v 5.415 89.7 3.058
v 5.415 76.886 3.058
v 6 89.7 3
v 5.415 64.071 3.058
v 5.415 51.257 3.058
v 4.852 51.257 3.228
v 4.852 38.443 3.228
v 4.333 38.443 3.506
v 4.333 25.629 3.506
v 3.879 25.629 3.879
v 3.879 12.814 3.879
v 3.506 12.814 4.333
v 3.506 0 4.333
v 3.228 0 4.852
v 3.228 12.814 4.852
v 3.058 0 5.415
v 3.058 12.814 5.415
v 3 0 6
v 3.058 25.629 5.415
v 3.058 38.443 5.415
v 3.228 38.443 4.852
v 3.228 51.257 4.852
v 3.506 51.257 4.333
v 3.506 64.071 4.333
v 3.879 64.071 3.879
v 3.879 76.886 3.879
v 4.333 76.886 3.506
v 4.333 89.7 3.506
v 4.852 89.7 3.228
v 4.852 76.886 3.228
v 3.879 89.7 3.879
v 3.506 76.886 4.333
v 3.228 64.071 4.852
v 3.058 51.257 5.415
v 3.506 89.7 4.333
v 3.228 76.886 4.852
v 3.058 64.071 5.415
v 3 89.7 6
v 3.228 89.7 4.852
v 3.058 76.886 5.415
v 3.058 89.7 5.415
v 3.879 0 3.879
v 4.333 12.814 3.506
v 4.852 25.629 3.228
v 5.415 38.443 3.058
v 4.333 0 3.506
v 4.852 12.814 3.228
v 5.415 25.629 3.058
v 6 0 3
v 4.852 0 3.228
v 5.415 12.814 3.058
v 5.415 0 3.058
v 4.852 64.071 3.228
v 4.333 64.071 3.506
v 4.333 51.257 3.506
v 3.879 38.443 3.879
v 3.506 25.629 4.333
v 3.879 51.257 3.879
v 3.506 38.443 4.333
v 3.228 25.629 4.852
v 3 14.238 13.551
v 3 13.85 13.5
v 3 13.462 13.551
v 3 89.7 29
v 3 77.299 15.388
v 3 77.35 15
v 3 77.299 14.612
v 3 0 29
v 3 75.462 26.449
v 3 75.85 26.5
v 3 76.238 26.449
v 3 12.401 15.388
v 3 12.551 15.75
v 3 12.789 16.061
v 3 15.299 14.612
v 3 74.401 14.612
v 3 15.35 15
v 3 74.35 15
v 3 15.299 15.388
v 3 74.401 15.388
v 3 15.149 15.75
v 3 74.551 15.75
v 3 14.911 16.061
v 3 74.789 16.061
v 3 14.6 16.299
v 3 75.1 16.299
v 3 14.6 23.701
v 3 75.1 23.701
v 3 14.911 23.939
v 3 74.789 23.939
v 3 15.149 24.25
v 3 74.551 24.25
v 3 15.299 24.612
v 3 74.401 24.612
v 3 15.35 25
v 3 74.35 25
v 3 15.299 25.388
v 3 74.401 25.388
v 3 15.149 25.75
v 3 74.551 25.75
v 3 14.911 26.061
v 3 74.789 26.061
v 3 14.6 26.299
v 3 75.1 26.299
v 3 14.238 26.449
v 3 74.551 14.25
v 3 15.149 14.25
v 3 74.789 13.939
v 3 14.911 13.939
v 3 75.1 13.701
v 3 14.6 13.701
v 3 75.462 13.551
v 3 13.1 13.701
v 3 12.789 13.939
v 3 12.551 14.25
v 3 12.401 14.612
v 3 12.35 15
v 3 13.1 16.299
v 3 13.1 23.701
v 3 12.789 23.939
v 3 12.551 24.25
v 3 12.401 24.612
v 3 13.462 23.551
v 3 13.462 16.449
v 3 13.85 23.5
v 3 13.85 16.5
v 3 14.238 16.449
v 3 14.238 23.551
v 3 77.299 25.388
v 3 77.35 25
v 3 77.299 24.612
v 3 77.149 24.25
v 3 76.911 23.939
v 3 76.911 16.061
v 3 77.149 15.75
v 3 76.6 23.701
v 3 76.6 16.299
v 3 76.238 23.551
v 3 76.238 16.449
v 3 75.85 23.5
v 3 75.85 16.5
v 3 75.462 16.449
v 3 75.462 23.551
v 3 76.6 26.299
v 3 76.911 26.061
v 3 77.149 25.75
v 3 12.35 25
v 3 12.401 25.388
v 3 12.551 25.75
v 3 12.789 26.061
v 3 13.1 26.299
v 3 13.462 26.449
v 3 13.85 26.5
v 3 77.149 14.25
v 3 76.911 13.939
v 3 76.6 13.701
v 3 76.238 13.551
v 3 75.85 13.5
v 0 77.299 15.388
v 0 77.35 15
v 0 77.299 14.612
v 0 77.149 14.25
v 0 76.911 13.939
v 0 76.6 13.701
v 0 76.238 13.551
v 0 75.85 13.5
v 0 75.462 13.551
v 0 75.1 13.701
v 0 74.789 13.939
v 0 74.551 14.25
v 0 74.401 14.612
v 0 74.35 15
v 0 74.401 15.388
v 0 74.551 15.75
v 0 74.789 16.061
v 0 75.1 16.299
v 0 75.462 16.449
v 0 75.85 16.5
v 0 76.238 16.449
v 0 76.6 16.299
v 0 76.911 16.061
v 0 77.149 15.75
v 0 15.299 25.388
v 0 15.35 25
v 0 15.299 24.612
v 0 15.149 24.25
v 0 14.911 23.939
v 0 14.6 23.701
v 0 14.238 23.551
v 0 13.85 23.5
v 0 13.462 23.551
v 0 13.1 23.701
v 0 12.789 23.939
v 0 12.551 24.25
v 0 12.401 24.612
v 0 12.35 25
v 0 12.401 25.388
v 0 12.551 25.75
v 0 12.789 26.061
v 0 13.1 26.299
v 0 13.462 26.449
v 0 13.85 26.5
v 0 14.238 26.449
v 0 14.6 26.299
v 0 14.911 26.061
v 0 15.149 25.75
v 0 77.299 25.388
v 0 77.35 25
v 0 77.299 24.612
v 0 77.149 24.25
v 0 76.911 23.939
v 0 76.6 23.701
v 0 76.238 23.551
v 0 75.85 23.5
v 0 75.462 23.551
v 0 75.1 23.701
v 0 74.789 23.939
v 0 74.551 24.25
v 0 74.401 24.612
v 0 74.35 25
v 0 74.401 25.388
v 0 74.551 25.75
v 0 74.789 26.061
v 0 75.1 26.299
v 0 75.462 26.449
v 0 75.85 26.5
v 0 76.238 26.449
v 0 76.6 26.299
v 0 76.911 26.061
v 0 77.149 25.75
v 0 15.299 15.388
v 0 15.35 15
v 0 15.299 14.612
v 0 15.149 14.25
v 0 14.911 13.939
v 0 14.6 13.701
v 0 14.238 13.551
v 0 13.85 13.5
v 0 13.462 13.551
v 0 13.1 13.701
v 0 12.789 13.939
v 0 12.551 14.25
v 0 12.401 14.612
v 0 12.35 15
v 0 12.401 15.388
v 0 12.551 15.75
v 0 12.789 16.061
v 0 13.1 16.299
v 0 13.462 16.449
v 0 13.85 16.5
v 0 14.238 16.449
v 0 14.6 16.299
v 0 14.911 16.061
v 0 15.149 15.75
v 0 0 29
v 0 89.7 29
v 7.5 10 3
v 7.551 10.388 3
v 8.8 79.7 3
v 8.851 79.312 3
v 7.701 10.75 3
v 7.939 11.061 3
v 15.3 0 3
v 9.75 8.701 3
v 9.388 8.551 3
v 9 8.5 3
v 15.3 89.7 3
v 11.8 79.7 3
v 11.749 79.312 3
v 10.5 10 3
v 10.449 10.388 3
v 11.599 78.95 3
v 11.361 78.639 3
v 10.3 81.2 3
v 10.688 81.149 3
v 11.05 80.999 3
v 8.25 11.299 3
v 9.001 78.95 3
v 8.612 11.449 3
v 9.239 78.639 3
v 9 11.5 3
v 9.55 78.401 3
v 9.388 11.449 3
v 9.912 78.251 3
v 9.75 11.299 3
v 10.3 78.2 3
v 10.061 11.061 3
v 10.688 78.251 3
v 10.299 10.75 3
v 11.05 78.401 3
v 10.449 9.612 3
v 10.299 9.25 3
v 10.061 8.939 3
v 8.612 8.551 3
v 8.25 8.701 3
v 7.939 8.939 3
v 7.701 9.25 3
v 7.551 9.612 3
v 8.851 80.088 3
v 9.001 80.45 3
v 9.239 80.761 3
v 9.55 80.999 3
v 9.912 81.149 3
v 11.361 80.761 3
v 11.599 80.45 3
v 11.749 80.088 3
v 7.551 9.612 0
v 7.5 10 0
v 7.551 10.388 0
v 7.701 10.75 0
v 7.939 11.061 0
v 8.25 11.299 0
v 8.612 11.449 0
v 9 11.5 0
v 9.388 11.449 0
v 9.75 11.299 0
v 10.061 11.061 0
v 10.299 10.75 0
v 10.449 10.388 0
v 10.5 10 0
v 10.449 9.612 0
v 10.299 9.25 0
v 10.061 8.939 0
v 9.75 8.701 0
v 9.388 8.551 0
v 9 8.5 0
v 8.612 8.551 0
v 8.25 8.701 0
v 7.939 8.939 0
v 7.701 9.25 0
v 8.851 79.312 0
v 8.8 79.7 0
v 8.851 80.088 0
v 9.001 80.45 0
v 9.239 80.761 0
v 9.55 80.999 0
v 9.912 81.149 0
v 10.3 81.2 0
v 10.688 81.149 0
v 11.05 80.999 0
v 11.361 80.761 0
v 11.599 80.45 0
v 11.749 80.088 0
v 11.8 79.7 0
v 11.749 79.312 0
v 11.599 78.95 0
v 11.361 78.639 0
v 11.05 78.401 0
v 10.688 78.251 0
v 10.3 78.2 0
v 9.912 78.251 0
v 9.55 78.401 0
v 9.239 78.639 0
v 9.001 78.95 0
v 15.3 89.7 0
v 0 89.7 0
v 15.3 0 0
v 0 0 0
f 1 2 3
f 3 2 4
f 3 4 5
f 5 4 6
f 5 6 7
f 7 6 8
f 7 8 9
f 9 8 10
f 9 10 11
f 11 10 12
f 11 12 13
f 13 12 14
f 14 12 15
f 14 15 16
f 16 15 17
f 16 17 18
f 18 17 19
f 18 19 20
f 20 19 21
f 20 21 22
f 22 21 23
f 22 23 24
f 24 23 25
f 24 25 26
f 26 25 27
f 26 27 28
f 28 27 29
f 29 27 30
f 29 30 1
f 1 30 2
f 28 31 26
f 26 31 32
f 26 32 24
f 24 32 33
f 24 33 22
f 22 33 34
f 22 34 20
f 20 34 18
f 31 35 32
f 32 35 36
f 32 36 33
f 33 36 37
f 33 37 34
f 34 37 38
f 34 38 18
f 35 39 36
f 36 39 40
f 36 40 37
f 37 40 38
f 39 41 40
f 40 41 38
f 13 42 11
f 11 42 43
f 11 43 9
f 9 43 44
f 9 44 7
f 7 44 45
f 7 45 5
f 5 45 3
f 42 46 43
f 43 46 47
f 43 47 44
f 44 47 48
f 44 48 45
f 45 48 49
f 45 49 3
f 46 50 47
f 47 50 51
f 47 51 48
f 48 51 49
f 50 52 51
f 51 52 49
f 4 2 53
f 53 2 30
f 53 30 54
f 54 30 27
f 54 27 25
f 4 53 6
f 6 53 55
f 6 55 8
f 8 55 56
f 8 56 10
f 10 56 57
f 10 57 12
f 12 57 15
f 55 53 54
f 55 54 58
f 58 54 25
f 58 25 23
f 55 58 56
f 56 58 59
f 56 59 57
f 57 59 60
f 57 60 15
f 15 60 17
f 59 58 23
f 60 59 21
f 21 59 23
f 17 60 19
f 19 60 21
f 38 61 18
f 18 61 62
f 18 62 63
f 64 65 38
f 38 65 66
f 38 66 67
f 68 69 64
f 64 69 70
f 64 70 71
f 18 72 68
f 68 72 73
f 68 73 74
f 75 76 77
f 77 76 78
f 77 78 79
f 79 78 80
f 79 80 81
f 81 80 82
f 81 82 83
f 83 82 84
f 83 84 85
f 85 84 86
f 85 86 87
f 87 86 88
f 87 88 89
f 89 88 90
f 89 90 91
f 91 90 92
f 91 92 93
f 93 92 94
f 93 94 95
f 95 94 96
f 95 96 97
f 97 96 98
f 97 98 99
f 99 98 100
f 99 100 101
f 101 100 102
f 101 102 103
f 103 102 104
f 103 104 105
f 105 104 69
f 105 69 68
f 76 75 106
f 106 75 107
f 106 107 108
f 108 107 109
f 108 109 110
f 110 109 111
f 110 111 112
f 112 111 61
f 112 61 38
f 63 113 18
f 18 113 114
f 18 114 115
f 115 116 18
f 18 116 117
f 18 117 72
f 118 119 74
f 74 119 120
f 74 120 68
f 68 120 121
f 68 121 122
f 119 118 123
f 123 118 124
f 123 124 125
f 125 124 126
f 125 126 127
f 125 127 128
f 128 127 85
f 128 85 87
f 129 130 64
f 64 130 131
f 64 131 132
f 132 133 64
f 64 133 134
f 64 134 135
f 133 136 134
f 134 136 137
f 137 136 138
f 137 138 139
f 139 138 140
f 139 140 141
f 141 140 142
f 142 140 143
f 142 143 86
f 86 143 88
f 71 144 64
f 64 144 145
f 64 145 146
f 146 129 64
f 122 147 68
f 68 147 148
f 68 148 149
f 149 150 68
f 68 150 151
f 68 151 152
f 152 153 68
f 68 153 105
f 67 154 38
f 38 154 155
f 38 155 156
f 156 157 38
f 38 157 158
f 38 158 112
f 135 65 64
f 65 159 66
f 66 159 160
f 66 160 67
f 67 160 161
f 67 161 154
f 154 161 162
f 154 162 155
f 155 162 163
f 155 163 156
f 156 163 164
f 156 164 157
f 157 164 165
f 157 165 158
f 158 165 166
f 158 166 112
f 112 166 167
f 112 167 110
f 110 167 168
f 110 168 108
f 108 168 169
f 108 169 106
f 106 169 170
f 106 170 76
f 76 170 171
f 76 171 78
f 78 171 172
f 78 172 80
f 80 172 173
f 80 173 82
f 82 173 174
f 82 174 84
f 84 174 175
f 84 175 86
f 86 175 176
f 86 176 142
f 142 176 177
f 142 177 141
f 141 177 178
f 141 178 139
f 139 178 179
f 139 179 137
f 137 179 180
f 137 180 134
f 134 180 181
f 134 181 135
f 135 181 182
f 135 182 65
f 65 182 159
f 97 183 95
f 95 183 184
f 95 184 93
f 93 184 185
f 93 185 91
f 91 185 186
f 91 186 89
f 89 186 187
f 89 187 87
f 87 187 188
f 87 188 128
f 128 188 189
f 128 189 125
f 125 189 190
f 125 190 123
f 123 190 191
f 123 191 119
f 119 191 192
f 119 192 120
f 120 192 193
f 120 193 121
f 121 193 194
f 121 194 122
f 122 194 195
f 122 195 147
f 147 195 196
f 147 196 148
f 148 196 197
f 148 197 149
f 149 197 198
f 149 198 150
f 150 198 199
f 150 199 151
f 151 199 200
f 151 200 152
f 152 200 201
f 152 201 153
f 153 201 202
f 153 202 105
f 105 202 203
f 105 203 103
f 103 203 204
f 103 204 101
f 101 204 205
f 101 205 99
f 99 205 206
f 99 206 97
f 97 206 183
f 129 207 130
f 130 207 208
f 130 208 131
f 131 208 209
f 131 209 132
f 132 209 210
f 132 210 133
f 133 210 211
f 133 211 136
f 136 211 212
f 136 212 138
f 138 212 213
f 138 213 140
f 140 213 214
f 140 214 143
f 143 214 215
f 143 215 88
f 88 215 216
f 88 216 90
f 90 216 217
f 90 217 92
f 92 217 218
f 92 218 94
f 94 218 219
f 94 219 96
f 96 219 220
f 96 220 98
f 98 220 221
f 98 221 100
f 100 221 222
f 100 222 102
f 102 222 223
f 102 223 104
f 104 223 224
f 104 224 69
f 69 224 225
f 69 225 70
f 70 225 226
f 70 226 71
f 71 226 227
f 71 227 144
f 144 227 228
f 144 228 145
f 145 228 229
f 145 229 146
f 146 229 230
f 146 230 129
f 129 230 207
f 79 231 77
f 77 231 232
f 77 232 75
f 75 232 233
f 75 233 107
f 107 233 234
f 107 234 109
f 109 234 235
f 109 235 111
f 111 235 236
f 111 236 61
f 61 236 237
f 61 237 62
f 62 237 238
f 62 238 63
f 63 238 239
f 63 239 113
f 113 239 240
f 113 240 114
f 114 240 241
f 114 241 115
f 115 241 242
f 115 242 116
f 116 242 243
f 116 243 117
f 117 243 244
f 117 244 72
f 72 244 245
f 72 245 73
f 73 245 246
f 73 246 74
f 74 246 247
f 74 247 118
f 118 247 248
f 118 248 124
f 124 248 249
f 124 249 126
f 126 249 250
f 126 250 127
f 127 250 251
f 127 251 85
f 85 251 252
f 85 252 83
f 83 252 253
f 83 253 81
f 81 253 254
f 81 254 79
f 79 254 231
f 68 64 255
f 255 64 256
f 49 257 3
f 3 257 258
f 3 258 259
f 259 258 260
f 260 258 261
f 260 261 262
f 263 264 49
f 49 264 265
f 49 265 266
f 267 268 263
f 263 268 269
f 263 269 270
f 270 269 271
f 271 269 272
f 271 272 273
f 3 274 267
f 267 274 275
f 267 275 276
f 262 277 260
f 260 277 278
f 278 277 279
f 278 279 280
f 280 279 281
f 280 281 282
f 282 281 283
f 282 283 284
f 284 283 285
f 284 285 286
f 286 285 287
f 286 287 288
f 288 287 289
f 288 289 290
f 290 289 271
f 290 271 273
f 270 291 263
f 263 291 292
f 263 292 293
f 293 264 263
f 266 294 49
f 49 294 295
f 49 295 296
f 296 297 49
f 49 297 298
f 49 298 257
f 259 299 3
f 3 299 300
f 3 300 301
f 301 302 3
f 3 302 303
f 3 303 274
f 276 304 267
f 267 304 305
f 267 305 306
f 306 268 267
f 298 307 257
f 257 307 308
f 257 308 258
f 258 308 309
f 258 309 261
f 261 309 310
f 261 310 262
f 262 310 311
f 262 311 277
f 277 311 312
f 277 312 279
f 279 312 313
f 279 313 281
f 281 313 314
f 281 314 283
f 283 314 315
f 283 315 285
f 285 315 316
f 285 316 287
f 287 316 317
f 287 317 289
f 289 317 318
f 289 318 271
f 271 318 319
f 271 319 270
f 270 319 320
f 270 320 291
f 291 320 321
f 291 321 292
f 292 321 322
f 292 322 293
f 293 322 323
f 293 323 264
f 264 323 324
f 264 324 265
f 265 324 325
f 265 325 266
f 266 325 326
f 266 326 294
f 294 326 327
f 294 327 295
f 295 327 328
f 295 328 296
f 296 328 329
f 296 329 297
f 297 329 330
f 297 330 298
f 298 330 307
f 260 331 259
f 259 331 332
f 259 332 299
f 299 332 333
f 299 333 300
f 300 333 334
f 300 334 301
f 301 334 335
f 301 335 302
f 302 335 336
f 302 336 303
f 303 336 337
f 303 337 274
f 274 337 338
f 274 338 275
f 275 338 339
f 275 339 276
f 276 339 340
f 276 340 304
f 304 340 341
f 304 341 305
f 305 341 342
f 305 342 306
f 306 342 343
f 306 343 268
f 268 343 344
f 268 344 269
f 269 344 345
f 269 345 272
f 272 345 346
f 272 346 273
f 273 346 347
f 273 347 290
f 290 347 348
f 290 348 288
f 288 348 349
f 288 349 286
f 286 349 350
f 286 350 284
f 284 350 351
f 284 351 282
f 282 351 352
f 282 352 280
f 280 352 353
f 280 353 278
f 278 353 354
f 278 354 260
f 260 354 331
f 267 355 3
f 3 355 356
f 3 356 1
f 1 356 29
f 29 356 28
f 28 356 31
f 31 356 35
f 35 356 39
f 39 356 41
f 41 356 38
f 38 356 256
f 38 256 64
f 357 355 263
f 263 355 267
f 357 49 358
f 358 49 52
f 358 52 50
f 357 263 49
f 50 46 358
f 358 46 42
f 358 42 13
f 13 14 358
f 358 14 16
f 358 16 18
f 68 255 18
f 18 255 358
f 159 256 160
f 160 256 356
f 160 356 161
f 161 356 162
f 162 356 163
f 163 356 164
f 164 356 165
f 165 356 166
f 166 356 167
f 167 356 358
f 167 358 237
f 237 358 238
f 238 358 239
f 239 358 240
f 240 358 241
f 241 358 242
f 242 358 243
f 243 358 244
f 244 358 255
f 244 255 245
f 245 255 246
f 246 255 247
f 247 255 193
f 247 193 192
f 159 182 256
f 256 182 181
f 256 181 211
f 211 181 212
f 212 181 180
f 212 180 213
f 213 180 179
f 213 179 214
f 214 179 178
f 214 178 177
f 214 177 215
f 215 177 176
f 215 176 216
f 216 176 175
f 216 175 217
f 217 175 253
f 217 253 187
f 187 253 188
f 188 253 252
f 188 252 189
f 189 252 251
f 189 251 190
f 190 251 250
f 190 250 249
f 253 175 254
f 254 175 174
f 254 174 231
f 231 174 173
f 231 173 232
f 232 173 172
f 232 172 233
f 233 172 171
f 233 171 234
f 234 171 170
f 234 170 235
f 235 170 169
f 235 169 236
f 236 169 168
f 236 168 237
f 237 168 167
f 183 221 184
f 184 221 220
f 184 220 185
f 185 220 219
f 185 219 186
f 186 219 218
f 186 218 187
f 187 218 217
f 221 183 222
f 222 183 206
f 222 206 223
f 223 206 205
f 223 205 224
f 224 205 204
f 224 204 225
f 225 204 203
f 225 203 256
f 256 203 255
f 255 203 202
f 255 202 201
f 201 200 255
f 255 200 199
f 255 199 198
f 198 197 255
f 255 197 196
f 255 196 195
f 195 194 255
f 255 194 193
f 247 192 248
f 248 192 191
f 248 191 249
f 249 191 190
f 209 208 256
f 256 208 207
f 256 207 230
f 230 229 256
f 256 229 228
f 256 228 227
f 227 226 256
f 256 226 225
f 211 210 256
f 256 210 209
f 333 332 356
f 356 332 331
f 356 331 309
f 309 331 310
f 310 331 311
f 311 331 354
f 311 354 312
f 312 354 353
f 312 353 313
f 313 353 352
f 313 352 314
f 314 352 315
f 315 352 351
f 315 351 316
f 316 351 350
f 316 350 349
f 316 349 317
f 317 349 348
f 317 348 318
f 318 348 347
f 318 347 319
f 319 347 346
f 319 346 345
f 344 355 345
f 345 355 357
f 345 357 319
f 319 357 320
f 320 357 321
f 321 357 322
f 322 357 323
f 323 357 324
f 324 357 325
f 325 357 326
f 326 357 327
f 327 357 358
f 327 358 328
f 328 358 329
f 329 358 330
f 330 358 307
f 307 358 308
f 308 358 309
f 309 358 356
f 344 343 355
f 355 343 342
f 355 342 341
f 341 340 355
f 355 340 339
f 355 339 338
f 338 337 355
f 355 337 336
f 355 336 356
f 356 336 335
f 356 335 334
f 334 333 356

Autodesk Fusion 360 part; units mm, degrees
sketch "Sketch1" plane through (0, 0, 0) normal (0, 0, 1) x (1, 0, 0)
  line L0 (0, 0) -> (15.3, 0)
  line L1 (15.3, 0) -> (15.3, 89.7)
  line L2 (15.3, 89.7) -> (0, 89.7)
  line L3 (0, 89.7) -> (0, 0)
  circle A0 centre (9, 10) radius 1.5
  circle A1 centre (10.3, 79.7) radius 1.5
  dimension "d1" = 3
  dimension "d2" = 3
  dimension "d3" = 69.7
  dimension "d4" = 1.3
  dimension "d5" = 10
  dimension "d6" = 10
  dimension "d7" = 9
  dimension "d8" = 5
extrude "Extrude1" add sketch "Sketch1" along normal blind 3
sketch "Sketch2" plane through (0, 0, 3) normal (0, 0, 1) x (-1, 0, 0)
  circle A0 centre (-10.3, -79.7) radius 1.5
  circle A1 centre (-9, -10) radius 1.5
  line L0 (0, -89.7) -> (0, 0)
  line L1 (0, 0) -> (-15.3, 0)
  line L2 (-15.3, 0) -> (-15.3, -89.7)
  line L3 (-15.3, -89.7) -> (0, -89.7)
  line L4 (0, -89.7) -> (-3, -89.7)
  line L5 (-3, -89.7) -> (-3, 0)
  line L6 (-3, 0) -> (0, 0)
  line L7 (0, 0) -> (0, -89.7)
  dimension "d11" = 3
extrude "Extrude2" add sketch "Sketch2" along normal blind 26 contours L0 L1 L3 L4 L5 L6 L7
sketch "Sketch3" plane through (0, 0, 0) normal (-1, 0, 0) x (0, -1, 0)
  line L0 (-89.7, 0) -> (0, 0)
  line L1 (0, 0) -> (0, 29)
  line L2 (0, 29) -> (-89.7, 29)
  line L3 (-89.7, 29) -> (-89.7, 0)
  line L4 (-75.85, 25) -> (-13.85, 25) construction
  line L5 (-13.85, 25) -> (-13.85, 15) construction
  line L6 (-13.85, 15) -> (-75.85, 15) construction
  line L7 (-75.85, 15) -> (-75.85, 25) construction
  line L8 (-44.85, 29) -> (-44.85, 0) construction
  line L9 (-75.85, 20) -> (-13.85, 20) construction
  line L10 (-44.85, 25) -> (-44.85, 15) construction
  circle A0 centre (-75.85, 25) radius 1.5
  circle A1 centre (-13.85, 25) radius 1.5
  circle A2 centre (-13.85, 15) radius 1.5
  circle A3 centre (-75.85, 15) radius 1.5
  dimension "d14" = 62
  dimension "d15" = 10
  dimension "d16" = 4
  dimension "d17" = 3
  dimension "d18" = 3
  dimension "d19" = 3
  dimension "d20" = 3
extrude "Extrude3" cut sketch "Sketch3" against normal blind 20 contours A0 | A1 | A2 | A3
fillet "Fillet1" radius 3 1 edges at (3, 44.85, 3)
